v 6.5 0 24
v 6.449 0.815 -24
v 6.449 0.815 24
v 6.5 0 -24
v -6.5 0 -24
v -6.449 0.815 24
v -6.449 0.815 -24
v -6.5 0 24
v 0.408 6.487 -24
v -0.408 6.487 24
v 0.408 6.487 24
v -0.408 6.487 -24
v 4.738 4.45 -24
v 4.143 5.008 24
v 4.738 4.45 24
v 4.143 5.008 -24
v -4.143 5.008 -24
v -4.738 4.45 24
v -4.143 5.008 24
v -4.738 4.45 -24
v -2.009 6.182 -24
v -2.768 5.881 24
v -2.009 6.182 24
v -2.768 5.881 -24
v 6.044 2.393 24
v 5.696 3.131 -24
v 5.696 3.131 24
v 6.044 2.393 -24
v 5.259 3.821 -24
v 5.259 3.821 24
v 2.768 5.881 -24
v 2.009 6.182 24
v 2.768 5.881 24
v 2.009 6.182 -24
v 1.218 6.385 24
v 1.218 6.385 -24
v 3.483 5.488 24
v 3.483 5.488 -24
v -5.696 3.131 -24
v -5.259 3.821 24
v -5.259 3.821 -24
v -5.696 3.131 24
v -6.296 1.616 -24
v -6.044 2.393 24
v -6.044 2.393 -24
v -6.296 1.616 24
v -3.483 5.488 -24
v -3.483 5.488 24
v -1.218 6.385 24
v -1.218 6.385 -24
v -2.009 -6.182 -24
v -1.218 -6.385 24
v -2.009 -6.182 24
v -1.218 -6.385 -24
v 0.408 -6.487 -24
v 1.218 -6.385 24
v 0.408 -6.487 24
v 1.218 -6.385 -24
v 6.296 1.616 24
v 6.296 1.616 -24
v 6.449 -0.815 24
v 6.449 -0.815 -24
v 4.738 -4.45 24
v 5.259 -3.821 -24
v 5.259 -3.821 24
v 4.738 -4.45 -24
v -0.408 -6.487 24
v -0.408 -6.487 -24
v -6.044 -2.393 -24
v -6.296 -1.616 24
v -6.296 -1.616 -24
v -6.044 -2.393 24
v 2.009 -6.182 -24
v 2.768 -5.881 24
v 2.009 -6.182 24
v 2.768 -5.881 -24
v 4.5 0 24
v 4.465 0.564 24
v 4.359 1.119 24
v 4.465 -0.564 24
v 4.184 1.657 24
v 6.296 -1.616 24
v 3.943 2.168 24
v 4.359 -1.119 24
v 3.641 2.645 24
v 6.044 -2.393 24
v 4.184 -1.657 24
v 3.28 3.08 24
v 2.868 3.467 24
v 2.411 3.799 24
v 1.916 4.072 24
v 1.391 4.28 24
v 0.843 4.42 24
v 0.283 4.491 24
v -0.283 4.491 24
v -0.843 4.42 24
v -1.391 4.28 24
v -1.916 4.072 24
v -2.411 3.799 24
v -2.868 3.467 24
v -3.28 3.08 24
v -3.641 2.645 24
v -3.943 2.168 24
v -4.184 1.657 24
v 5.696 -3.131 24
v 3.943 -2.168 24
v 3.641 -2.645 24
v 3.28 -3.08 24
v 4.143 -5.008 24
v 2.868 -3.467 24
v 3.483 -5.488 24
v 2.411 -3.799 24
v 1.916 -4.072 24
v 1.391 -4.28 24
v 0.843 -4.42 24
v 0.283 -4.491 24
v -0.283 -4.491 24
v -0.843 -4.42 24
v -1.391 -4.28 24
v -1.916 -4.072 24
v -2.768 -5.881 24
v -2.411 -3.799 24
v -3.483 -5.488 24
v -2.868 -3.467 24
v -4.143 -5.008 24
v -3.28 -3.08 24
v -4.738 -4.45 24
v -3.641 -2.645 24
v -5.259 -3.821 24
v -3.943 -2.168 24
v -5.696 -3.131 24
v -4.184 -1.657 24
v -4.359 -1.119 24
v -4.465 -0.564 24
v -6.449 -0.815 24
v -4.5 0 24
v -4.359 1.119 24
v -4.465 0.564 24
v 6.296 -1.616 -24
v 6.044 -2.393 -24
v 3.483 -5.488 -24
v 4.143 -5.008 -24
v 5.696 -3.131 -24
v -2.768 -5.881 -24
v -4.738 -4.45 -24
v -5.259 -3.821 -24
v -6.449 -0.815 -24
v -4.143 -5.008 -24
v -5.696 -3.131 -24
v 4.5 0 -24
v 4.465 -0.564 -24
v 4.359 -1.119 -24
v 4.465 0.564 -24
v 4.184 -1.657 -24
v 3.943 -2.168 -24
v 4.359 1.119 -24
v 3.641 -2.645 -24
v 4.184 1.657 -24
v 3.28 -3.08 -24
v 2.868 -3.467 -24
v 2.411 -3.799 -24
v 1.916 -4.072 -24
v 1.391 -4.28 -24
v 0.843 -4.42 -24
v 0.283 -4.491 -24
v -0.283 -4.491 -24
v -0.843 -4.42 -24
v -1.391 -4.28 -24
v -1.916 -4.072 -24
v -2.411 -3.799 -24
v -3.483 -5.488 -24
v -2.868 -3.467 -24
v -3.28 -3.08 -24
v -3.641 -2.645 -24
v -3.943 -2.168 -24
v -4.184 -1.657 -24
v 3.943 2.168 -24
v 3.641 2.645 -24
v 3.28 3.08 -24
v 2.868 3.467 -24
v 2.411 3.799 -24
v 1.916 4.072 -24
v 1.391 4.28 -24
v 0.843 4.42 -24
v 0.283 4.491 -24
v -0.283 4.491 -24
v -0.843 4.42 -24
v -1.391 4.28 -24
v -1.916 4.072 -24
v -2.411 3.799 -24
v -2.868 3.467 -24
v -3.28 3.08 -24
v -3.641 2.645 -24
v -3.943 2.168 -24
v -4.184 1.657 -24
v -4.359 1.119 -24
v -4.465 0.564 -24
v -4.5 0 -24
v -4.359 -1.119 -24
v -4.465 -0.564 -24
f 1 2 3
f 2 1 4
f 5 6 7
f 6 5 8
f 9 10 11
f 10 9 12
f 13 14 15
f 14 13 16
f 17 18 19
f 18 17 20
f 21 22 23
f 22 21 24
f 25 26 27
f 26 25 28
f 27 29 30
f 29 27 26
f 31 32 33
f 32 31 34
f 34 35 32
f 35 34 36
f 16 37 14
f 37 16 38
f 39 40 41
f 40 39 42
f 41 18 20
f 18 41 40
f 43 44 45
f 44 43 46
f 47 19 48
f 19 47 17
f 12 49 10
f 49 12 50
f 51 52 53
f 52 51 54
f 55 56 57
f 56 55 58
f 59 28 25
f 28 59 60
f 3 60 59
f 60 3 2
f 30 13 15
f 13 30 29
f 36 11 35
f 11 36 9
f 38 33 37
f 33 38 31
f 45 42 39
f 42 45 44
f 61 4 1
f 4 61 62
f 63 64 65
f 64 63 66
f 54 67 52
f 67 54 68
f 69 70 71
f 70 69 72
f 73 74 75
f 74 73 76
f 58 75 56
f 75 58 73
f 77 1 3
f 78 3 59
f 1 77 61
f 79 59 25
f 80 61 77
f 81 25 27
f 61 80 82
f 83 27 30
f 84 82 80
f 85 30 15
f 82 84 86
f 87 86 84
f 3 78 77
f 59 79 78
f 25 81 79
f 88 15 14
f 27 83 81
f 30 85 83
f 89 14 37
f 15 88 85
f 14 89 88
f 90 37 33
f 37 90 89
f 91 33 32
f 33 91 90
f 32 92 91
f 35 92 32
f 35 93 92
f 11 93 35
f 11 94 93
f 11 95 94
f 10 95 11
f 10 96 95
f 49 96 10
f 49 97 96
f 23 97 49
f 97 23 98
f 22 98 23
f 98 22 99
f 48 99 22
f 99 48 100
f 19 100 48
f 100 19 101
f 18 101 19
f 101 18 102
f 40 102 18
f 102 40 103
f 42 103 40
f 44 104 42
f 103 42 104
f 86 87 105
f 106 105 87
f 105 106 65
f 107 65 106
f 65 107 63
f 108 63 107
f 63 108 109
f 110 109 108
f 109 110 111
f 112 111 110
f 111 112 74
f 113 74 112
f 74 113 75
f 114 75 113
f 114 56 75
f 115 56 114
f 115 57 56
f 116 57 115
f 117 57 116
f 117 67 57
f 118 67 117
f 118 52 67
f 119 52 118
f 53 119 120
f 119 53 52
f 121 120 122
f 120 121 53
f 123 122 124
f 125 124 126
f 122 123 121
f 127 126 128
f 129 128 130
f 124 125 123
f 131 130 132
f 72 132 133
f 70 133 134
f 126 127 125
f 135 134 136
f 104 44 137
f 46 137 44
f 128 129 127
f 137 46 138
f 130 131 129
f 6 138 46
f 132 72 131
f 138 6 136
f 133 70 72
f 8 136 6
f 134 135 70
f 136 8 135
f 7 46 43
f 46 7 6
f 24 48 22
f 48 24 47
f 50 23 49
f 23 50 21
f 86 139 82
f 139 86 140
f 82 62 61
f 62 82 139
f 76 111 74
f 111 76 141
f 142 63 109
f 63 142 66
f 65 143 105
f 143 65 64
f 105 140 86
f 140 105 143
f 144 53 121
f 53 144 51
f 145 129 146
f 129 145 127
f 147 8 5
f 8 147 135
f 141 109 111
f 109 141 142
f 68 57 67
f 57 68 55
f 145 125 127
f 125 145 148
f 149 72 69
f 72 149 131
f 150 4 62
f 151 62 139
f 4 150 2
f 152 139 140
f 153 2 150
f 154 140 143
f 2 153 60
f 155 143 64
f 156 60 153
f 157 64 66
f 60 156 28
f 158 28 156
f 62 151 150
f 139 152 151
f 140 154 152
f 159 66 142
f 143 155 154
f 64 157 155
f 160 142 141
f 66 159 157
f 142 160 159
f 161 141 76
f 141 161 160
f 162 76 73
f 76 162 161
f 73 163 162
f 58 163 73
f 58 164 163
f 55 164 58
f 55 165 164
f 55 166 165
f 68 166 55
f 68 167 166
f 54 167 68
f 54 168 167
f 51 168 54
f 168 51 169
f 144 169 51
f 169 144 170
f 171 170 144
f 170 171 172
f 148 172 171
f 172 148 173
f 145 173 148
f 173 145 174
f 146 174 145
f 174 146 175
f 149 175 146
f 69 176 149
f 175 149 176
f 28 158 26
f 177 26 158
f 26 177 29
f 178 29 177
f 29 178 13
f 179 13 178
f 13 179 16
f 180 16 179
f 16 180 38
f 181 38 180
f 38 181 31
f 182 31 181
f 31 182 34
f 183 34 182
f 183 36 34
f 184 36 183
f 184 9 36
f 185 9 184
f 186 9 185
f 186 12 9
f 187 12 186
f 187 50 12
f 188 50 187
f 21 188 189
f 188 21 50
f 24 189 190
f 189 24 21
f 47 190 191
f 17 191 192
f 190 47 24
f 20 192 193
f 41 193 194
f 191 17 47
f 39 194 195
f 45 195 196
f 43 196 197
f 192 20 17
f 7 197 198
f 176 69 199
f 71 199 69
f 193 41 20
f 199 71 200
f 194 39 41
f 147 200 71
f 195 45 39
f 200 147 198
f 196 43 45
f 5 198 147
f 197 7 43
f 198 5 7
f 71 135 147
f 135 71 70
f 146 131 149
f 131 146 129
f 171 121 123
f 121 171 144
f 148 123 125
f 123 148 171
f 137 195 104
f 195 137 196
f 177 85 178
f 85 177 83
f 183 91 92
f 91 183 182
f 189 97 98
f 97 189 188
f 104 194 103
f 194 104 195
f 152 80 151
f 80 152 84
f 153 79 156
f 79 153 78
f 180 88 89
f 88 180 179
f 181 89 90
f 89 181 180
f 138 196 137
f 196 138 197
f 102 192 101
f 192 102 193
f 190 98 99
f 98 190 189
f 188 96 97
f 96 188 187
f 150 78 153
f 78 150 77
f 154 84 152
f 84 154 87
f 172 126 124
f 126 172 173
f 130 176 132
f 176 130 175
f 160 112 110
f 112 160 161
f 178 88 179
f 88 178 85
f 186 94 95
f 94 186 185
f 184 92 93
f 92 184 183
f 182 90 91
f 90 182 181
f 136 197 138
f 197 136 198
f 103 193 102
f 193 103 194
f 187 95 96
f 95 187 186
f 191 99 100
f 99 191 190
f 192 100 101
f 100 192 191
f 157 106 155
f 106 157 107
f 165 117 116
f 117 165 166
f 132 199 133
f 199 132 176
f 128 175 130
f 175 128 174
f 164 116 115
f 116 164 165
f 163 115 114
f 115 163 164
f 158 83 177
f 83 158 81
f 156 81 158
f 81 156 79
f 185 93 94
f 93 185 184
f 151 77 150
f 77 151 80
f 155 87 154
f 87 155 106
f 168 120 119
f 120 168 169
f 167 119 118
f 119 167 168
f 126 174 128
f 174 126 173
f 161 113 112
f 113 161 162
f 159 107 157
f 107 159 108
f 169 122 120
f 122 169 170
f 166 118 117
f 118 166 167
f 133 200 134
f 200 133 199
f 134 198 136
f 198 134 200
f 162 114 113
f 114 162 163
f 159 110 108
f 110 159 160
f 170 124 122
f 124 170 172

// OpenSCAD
$fn = 50;


difference() {
	union() {
		translate(v = [0, 0, -24.0000000000]) {
			cylinder(h = 48, r = 6.5000000000);
		}
	}
	union() {
		translate(v = [0, 0, -100.0000000000]) {
			cylinder(h = 200, r = 4.5000000000);
		}
	}
}
